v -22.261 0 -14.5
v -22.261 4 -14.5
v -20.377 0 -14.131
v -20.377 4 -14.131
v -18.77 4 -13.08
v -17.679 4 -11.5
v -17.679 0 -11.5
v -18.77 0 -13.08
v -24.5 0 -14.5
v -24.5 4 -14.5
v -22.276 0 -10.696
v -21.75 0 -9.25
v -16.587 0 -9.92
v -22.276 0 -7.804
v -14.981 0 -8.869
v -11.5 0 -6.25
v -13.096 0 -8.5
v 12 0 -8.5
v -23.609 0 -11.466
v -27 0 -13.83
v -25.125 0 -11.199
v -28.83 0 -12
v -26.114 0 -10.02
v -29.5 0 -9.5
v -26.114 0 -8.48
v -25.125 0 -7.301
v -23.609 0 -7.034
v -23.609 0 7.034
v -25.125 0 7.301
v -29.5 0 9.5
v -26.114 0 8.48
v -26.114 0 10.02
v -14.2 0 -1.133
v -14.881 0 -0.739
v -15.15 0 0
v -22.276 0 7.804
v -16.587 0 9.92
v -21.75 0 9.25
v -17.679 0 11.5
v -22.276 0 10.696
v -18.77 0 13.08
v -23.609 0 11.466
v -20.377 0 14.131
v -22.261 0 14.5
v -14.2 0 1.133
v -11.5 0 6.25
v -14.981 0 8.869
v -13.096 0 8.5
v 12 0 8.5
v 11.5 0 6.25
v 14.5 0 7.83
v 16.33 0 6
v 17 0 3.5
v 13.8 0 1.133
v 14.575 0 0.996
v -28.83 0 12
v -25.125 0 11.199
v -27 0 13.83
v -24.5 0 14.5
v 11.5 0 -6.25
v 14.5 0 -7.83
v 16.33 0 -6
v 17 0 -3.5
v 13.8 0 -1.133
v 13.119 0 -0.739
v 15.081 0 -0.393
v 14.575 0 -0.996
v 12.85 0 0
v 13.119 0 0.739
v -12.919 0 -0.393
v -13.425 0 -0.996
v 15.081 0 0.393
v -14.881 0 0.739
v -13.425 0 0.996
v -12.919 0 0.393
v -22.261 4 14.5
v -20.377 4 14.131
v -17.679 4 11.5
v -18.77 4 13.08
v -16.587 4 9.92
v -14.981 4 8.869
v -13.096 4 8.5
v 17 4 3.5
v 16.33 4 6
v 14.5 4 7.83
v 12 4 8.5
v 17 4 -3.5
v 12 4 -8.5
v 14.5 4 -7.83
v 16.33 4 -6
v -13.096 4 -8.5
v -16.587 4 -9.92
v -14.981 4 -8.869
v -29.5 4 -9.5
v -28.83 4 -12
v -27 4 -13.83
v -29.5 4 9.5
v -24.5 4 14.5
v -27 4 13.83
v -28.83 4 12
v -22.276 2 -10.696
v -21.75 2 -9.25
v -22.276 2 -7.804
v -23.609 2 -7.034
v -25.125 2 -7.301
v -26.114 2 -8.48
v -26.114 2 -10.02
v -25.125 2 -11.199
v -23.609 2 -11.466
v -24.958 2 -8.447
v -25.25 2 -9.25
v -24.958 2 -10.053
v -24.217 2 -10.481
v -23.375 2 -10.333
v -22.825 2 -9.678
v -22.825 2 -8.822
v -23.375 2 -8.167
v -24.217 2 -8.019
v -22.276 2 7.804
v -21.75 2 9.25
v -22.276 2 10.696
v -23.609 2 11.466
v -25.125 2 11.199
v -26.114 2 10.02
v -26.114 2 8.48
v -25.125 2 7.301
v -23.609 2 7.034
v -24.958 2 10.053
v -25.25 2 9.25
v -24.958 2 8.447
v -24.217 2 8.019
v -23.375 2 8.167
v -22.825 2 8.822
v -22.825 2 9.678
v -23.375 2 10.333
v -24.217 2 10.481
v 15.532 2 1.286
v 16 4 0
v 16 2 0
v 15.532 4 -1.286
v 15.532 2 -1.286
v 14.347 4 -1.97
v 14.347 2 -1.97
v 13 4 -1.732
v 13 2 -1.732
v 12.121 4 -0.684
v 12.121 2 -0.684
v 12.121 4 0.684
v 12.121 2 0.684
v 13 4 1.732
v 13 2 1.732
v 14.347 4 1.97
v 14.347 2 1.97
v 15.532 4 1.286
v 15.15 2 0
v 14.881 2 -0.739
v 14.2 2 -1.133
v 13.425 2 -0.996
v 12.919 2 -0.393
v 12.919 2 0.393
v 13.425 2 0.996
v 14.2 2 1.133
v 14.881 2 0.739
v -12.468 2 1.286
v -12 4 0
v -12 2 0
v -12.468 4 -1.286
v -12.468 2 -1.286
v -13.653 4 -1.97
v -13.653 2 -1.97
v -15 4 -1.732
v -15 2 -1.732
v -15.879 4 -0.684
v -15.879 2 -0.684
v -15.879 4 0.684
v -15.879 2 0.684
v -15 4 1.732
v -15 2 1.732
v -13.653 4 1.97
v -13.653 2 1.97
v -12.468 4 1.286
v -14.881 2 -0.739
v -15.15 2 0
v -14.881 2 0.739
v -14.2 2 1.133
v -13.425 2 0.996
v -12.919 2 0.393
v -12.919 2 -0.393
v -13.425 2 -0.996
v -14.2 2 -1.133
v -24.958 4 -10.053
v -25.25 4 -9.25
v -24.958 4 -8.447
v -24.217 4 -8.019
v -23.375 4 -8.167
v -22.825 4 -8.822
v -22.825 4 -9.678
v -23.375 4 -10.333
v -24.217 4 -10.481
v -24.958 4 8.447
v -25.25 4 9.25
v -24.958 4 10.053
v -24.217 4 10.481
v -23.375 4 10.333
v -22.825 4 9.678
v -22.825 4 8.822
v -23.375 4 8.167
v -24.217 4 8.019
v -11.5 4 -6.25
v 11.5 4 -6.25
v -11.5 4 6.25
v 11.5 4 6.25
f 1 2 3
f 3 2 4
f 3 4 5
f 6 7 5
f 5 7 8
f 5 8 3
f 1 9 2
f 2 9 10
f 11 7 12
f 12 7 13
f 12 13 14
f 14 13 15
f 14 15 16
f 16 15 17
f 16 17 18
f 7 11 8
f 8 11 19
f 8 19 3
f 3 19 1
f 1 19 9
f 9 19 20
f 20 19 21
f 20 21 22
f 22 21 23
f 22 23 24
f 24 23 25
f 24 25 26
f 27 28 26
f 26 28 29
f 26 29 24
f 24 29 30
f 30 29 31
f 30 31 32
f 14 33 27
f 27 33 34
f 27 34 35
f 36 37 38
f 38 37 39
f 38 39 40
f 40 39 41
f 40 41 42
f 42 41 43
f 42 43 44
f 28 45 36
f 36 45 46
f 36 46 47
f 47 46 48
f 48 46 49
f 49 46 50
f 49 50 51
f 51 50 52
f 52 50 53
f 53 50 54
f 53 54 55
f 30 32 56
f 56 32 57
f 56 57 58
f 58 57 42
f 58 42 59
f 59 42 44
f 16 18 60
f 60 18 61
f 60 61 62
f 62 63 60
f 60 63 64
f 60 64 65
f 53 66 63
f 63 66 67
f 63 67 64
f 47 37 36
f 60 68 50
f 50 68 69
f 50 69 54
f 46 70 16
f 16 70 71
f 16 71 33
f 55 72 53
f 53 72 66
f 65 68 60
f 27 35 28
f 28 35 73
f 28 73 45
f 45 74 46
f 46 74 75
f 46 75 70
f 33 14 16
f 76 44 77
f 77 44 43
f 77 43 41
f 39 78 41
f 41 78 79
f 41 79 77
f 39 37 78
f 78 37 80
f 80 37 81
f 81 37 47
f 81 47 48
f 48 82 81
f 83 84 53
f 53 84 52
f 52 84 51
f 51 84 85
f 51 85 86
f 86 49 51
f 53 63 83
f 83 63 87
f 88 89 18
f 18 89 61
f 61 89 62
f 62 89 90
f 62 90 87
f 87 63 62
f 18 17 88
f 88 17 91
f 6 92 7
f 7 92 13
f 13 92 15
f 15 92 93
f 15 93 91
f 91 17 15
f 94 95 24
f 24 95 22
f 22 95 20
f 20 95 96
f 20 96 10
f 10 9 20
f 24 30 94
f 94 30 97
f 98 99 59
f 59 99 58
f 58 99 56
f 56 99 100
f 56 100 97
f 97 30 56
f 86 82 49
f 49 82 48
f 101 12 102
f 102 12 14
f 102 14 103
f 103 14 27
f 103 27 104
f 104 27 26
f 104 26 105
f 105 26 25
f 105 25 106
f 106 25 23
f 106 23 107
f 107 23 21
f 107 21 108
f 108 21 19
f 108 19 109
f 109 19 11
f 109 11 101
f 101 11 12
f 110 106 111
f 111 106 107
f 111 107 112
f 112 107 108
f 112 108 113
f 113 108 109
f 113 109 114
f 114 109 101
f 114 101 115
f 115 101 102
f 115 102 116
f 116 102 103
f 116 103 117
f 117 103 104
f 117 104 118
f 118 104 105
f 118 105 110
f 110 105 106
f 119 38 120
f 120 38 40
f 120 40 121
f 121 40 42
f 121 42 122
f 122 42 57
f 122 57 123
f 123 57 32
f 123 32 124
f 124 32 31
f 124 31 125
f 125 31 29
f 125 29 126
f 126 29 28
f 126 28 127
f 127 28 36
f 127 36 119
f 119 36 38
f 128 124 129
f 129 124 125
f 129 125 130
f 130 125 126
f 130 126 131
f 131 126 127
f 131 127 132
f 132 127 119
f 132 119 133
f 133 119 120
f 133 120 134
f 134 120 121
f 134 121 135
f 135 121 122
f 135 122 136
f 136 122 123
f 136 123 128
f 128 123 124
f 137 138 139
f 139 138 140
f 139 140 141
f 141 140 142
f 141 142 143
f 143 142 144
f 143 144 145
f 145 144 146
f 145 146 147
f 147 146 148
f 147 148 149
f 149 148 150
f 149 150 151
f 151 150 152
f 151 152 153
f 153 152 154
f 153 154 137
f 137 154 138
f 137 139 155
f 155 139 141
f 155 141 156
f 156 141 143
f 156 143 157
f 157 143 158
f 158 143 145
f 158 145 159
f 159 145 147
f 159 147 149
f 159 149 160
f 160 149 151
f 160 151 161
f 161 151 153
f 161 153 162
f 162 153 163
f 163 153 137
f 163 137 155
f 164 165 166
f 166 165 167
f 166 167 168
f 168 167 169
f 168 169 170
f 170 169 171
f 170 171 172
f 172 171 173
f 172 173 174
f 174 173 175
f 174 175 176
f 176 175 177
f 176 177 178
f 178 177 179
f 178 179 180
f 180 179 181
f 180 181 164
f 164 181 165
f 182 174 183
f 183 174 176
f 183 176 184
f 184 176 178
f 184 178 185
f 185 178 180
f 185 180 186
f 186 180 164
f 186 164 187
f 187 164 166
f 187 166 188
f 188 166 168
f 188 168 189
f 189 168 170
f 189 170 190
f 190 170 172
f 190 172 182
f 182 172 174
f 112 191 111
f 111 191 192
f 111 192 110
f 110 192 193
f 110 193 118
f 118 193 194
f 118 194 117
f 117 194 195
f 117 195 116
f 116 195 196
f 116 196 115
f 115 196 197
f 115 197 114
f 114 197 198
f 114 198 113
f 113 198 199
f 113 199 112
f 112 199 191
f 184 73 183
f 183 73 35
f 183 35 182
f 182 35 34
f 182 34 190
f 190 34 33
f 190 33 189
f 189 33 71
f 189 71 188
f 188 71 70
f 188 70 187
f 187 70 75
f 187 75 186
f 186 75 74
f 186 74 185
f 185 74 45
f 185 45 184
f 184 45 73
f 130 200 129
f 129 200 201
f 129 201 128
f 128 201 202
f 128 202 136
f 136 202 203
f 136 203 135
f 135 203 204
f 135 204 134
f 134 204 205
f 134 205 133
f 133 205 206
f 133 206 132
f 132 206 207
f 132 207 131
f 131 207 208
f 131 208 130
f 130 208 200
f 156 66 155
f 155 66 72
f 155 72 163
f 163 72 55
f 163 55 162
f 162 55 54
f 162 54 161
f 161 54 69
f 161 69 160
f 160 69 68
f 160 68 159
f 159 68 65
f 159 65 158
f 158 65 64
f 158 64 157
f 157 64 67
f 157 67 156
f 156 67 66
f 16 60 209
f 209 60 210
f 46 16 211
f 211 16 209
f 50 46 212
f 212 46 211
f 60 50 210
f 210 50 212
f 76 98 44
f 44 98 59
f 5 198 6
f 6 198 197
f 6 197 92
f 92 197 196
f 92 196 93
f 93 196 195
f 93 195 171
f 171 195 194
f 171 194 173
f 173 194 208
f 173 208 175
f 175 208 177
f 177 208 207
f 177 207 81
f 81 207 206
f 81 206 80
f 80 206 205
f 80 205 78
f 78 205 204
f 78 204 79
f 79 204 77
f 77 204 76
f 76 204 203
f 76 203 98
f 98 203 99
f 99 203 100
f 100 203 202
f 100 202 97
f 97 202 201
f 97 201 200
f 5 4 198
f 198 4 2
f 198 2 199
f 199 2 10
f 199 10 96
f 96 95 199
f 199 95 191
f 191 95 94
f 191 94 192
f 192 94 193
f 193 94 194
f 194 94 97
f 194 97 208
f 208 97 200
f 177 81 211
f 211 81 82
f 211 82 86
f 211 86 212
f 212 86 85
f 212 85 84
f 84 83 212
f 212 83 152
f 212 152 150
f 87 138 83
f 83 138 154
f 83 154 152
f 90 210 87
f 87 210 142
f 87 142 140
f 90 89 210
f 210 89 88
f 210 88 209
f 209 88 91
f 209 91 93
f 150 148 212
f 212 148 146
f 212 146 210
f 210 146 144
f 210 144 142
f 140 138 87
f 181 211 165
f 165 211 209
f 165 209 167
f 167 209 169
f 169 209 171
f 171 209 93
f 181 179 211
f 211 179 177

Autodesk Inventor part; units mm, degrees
ref_plane "YZ Plane" through (0, 0, 0) normal (1, 0, 0) x (0, 1, 0)
ref_plane "XZ Plane" through (0, 0, 0) normal (0, 1, 0) x (-1, 0, 0)
ref_plane "XY Plane" through (0, 0, 0) normal (0, 0, 1) x (1, 0, 0)
sketch "Sketch1" plane through (0, 0, 0) normal (0, 1, 0) x (-1, 0, 0)
  line L0 (11.5, 6.25) -> (-11.5, 6.25)
  line L1 (-11.5, 6.25) -> (-11.5, -6.25)
  line L2 (-11.5, -6.25) -> (11.5, -6.25)
  line L3 (11.5, -6.25) -> (11.5, 6.25)
  line L4 (11.5, 6.25) -> (-11.5, -6.25) construction
  line L5 (-11.5, 6.25) -> (11.5, -6.25) construction
  line L6 (17, 8.5) -> (-17, 8.5)
  line L7 (-17, 8.5) -> (-17, -8.5)
  line L8 (-17, -8.5) -> (17, -8.5)
  line L9 (17, -8.5) -> (17, 8.5) construction
  line L10 (17, 8.5) -> (-17, -8.5) construction
  line L11 (-17, 8.5) -> (17, -8.5) construction
  line L12 (38.8, 0) -> (-26.3, 0) projected
  line L13 (0, -20.3) -> (0, 20.3) projected
  line L14 (29.5, 14.5) -> (18.5, 14.5)
  line L15 (18.5, 14.5) -> (18.5, -14.5) construction
  line L16 (18.5, -14.5) -> (29.5, -14.5)
  line L17 (29.5, -14.5) -> (29.5, 14.5)
  line L18 (29.5, 14.5) -> (18.5, -14.5) construction
  line L19 (18.5, 14.5) -> (29.5, -14.5) construction
  line L20 (18.5, 14.5) -> (17, 8.5)
  line L21 (17, -8.5) -> (18.5, -14.5)
  circle A0 centre (-14, 0) radius 1.15
  circle A1 centre (14, 0) radius 1.15
  circle A2 centre (24, 9.25) radius 1.25
  circle A3 centre (24, -9.25) radius 1.25
  point P0 (0, 0)
  point P1 (24, 0)
  dimension "d0" = 23
  dimension "d1" = 12.5
  dimension "d2" = 17
  dimension "d3" = 34
  dimension "d11" = 2.3
  dimension "d12" = 28
  dimension "d13" = 12.5
  dimension "d14" = 2.5
  dimension "d15" = 9.25
  dimension "d16" = 29
  dimension "d18" = 5.5
extrude "Extrusion1" add sketch "Sketch1" along normal blind 4 contours L0 L13 L6 L20 L14 L17 L12 A1 L3 | L0 L1 L12 A0 L7 L6 L13 | L12 A1 L17 L16 L21 L8 L13 L2 L3 | L1 L2 L13 L8 L7 L12 A0
sketch "Sketch2" plane through (0, 4, 0) normal (0, 1, 0) x (1, 0, 0)
  circle A0 centre (14, 0) radius 1.15 projected
  circle A1 centre (14, 0) radius 2
  line L0 (0, 20.3) -> (0, -20.3) projected
  circle A2 centre (-14, 0) radius 2
  point P0 (0, 0)
  dimension "d21" = 4
extrude "Extrusion2" cut sketch "Sketch2" against normal blind 2
sketch "Sketch3" plane through (0, 0, 0) normal (0, -1, 0) x (1, 0, 0)
  line L0 (-38.8, 0) -> (26.3, 0) projected
  circle A0 centre (-24, 9.25) radius 1.25 projected
  circle A1 centre (-24, 9.25) radius 2.25
  circle A2 centre (-24, -9.25) radius 2.25
  point P0 (0, 0)
  dimension "d24" = 4.5
extrude "Extrusion3" cut sketch "Sketch3" against normal blind 2 contours A0 | A1 | A2
fillet "Fillet1" radius 5 8 edges at (-18.5, 2, 14.5) (-17, 2, 8.5) (-29.5, 2, 14.5) (-29.5, 2, -14.5) (-18.5, 2, -14.5) (-17, 2, -8.5) (17, 2, -8.5) (17, 2, 8.5)
properties part number "mount1"
